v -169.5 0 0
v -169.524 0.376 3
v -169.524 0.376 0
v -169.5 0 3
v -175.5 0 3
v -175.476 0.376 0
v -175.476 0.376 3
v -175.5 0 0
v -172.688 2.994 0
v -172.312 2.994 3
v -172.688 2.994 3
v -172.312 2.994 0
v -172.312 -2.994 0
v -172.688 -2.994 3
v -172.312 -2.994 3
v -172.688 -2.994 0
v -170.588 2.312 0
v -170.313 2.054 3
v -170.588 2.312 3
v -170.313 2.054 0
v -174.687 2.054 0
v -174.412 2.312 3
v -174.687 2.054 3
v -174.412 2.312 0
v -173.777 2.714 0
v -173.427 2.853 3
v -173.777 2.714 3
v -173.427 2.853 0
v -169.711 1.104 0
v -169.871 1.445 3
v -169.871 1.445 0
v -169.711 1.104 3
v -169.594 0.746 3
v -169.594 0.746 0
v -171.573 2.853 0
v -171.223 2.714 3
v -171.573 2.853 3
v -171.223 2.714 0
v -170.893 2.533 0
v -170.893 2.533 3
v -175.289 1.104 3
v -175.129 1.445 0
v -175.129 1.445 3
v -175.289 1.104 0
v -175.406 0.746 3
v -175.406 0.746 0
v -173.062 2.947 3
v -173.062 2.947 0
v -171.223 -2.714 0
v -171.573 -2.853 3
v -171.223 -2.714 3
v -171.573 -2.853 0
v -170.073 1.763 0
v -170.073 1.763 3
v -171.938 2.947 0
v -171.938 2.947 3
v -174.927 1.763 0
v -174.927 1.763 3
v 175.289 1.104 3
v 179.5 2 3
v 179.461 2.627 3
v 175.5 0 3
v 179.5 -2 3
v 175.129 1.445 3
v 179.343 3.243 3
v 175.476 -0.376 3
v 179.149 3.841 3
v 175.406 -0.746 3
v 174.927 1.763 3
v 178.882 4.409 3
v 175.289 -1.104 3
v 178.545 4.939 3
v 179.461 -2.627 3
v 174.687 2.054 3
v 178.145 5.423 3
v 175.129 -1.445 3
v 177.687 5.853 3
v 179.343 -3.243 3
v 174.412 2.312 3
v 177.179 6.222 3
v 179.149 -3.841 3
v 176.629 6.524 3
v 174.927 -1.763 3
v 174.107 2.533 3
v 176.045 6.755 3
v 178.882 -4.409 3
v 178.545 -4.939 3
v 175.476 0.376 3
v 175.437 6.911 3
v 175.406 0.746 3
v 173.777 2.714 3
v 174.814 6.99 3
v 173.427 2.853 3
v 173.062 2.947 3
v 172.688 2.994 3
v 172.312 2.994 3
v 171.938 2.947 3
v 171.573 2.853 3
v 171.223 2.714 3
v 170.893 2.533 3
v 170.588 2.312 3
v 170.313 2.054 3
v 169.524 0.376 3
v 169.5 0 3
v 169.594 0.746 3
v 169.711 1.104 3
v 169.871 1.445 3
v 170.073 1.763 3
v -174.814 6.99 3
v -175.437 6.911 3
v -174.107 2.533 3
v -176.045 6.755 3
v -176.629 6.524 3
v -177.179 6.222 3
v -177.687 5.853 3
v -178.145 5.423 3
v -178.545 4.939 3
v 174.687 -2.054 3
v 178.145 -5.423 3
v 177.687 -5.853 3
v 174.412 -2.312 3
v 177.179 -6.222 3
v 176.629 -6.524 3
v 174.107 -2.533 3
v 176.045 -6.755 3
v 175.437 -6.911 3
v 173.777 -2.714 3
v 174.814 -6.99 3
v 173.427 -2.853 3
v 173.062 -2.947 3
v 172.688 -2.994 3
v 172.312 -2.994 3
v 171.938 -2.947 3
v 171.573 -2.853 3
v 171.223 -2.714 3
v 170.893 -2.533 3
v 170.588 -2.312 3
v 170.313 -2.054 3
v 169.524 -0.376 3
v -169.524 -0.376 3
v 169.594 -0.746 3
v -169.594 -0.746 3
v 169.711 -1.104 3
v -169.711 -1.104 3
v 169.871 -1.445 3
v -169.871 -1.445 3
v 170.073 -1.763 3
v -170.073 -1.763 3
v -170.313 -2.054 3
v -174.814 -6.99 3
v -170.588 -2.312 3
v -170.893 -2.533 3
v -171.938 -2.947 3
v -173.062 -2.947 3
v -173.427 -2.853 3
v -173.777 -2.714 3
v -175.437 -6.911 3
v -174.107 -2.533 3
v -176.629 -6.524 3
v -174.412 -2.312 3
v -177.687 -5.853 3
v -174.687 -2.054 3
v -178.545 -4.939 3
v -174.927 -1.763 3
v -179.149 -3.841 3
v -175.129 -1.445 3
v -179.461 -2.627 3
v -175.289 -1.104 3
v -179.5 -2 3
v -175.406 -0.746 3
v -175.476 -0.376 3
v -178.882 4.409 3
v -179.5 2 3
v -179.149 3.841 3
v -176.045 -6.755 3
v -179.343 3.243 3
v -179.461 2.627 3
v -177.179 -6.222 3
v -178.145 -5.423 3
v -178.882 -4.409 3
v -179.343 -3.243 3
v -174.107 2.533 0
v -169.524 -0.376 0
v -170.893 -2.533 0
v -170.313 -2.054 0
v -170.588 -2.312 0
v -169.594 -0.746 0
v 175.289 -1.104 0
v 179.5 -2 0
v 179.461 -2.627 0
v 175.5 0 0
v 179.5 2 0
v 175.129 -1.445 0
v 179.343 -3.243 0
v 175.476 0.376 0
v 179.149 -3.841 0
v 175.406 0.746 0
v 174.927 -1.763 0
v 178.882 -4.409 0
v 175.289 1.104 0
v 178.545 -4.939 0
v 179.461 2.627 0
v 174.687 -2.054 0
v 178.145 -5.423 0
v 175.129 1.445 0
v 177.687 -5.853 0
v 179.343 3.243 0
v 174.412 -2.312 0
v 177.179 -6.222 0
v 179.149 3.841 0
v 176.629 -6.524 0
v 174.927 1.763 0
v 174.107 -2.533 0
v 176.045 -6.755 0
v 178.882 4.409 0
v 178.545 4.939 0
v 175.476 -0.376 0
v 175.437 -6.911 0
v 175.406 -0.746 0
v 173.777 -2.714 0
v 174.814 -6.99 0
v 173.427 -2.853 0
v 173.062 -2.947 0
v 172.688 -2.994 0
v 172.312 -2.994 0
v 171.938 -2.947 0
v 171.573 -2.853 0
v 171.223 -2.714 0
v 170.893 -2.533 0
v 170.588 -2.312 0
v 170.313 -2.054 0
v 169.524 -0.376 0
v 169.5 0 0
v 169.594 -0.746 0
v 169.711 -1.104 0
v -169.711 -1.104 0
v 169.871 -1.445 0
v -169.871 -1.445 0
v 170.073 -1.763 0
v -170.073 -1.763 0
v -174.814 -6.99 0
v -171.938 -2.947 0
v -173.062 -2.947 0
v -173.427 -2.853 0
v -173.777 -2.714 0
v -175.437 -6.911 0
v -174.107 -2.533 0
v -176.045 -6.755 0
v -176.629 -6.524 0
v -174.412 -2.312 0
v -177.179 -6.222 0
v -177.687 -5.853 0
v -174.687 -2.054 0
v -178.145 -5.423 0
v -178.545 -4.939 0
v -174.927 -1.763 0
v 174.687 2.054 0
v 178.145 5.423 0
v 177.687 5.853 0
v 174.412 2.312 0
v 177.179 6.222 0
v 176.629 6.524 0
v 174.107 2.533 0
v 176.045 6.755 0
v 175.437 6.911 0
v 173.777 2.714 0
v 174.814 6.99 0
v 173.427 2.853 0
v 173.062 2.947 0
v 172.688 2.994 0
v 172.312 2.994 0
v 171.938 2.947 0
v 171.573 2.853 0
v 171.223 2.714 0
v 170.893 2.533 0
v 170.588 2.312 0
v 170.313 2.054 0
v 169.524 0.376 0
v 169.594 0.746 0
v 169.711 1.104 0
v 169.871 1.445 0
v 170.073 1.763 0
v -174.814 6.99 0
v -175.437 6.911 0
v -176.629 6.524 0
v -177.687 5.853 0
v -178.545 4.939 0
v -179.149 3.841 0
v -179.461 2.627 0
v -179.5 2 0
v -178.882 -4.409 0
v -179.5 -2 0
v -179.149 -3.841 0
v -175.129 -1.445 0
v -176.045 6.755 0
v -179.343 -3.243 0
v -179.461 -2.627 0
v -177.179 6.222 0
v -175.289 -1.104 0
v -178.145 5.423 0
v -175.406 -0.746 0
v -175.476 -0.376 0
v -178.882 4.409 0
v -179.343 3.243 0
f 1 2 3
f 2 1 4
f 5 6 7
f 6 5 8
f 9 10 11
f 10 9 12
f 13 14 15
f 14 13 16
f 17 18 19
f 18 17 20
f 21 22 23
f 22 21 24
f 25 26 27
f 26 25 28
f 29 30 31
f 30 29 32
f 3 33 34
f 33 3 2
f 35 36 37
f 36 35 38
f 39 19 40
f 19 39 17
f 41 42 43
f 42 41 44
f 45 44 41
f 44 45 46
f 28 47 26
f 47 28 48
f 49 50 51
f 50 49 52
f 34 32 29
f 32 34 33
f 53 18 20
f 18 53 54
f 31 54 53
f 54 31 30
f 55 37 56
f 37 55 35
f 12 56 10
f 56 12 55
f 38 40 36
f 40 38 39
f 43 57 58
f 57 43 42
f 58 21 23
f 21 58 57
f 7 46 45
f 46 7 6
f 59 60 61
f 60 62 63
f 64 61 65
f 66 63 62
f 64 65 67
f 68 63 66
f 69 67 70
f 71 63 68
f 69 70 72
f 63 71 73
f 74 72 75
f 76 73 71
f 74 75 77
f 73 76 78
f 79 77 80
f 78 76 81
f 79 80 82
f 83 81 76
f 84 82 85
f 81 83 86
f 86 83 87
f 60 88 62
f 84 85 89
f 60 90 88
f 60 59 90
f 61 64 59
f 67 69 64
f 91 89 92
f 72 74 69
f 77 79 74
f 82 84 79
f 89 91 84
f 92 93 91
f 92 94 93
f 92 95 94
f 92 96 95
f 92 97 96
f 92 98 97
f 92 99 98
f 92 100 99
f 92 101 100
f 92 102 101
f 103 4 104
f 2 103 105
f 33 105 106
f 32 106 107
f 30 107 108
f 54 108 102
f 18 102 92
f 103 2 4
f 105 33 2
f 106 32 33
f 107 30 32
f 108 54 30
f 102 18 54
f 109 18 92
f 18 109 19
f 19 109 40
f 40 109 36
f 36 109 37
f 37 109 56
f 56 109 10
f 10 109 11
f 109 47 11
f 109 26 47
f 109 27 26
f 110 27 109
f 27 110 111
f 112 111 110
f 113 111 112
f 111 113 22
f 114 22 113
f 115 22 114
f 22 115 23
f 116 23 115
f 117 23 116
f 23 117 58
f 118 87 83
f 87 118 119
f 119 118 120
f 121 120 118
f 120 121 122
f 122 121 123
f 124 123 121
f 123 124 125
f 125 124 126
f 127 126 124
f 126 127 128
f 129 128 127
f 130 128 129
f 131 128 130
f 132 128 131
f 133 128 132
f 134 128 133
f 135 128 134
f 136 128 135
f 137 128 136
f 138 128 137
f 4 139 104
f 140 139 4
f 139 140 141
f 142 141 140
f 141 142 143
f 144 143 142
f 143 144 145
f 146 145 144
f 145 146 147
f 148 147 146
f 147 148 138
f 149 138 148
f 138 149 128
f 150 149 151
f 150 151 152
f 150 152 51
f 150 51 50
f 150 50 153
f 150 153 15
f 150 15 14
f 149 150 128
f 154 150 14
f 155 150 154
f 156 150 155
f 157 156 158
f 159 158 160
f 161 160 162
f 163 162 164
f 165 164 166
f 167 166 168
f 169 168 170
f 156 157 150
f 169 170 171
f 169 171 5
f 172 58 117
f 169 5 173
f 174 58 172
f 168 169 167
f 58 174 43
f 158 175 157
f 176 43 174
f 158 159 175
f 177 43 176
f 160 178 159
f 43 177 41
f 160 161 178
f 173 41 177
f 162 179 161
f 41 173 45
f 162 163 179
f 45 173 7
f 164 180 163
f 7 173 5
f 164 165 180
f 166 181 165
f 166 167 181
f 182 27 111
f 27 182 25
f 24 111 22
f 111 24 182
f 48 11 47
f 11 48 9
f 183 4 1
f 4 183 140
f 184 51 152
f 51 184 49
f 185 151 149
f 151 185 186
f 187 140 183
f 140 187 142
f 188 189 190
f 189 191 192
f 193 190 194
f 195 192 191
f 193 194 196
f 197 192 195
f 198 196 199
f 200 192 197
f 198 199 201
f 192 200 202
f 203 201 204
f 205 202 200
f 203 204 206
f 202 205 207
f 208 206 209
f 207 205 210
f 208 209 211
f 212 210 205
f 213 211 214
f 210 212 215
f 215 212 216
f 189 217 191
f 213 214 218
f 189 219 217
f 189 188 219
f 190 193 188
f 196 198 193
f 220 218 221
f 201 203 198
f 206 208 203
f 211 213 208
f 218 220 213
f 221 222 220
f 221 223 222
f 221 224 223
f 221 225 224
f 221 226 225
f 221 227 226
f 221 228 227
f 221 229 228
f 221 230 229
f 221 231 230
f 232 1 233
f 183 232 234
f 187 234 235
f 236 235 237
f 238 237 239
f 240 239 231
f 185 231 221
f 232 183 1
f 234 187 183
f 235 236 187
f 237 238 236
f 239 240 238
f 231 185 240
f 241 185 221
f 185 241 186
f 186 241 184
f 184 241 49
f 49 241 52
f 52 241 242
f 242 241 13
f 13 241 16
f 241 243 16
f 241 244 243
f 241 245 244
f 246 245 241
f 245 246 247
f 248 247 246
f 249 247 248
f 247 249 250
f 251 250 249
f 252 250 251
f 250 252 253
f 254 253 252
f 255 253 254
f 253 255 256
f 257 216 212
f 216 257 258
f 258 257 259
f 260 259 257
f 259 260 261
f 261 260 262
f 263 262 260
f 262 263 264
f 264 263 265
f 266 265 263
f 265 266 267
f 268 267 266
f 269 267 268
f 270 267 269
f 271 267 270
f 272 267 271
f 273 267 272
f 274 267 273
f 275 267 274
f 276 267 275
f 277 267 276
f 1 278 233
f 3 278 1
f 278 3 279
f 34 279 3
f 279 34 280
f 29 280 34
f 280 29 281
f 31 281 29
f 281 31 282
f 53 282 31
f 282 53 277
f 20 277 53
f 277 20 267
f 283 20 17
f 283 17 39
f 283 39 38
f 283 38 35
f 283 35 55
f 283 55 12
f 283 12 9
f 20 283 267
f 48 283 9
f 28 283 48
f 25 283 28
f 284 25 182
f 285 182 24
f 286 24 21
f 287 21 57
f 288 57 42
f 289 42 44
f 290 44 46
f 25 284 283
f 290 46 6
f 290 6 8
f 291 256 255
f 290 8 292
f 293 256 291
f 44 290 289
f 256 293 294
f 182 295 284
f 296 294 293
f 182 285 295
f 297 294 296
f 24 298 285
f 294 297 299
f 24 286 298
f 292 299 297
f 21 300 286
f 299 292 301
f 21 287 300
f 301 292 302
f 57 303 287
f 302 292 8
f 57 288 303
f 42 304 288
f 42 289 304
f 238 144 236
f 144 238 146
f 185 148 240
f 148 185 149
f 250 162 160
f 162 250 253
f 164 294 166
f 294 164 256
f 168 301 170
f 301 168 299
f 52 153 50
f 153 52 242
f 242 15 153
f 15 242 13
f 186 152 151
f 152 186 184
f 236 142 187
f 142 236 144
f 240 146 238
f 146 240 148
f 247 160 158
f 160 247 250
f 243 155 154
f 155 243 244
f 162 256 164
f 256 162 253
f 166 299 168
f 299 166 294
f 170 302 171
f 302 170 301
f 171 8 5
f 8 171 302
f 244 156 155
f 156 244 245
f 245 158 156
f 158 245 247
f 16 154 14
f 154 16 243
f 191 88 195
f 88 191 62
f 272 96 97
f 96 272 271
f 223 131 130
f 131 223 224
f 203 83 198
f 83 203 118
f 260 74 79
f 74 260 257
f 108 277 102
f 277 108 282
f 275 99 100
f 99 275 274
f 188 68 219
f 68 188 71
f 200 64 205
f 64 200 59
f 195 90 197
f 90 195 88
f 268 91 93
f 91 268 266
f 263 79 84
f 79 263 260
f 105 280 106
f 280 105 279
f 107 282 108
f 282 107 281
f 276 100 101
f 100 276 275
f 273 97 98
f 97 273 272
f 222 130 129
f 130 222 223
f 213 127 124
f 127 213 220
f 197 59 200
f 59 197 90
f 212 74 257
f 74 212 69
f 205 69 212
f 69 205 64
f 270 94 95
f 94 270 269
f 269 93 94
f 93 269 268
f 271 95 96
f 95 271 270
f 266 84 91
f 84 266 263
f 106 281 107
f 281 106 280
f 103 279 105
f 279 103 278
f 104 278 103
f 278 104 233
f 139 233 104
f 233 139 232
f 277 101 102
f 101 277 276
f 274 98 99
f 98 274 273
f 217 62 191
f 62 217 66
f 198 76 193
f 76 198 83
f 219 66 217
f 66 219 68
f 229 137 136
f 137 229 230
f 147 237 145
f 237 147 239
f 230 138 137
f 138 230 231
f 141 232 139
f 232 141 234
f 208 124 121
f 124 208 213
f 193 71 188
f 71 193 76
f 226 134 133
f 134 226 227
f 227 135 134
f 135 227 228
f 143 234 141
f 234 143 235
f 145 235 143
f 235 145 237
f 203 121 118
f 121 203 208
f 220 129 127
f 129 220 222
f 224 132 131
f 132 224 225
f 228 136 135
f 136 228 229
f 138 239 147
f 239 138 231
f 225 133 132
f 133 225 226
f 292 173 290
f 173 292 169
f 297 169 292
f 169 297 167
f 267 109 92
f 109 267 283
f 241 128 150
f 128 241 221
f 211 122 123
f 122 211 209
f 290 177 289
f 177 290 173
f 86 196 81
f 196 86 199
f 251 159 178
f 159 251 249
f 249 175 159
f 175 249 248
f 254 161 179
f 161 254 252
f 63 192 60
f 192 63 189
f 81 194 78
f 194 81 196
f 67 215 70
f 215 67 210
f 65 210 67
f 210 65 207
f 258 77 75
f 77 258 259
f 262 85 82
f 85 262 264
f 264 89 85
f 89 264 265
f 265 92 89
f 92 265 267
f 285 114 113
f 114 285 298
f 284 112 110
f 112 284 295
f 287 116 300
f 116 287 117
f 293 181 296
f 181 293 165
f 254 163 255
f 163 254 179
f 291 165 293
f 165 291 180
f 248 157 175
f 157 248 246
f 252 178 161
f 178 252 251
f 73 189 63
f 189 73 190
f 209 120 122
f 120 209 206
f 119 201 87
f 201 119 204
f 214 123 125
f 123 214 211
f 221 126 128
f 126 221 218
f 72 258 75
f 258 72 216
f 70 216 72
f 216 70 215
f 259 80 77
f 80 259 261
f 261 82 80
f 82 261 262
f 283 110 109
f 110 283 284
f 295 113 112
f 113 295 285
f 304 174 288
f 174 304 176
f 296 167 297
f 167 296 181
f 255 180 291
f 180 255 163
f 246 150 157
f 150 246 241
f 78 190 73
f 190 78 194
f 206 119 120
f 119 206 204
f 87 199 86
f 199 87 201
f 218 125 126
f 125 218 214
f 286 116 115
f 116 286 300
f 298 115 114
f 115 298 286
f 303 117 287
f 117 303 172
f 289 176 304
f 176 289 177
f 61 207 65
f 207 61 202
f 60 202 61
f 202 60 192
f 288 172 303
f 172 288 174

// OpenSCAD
$fn = 50;


difference() {
	union() {
		hull() {
			translate(v = [-174.5000000000, 2.0000000000, 0]) {
				cylinder(h = 3, r = 5);
			}
			translate(v = [174.5000000000, 2.0000000000, 0]) {
				cylinder(h = 3, r = 5);
			}
			translate(v = [-174.5000000000, -2.0000000000, 0]) {
				cylinder(h = 3, r = 5);
			}
			translate(v = [174.5000000000, -2.0000000000, 0]) {
				cylinder(h = 3, r = 5);
			}
		}
	}
	union() {
		translate(v = [-172.5000000000, 0.0000000000, -100.0000000000]) {
			cylinder(h = 200, r = 3.0000000000);
		}
		translate(v = [-172.5000000000, 0.0000000000, -100.0000000000]) {
			cylinder(h = 200, r = 3.0000000000);
		}
		translate(v = [172.5000000000, 0.0000000000, -100.0000000000]) {
			cylinder(h = 200, r = 3.0000000000);
		}
		translate(v = [172.5000000000, 0.0000000000, -100.0000000000]) {
			cylinder(h = 200, r = 3.0000000000);
		}
	}
}
